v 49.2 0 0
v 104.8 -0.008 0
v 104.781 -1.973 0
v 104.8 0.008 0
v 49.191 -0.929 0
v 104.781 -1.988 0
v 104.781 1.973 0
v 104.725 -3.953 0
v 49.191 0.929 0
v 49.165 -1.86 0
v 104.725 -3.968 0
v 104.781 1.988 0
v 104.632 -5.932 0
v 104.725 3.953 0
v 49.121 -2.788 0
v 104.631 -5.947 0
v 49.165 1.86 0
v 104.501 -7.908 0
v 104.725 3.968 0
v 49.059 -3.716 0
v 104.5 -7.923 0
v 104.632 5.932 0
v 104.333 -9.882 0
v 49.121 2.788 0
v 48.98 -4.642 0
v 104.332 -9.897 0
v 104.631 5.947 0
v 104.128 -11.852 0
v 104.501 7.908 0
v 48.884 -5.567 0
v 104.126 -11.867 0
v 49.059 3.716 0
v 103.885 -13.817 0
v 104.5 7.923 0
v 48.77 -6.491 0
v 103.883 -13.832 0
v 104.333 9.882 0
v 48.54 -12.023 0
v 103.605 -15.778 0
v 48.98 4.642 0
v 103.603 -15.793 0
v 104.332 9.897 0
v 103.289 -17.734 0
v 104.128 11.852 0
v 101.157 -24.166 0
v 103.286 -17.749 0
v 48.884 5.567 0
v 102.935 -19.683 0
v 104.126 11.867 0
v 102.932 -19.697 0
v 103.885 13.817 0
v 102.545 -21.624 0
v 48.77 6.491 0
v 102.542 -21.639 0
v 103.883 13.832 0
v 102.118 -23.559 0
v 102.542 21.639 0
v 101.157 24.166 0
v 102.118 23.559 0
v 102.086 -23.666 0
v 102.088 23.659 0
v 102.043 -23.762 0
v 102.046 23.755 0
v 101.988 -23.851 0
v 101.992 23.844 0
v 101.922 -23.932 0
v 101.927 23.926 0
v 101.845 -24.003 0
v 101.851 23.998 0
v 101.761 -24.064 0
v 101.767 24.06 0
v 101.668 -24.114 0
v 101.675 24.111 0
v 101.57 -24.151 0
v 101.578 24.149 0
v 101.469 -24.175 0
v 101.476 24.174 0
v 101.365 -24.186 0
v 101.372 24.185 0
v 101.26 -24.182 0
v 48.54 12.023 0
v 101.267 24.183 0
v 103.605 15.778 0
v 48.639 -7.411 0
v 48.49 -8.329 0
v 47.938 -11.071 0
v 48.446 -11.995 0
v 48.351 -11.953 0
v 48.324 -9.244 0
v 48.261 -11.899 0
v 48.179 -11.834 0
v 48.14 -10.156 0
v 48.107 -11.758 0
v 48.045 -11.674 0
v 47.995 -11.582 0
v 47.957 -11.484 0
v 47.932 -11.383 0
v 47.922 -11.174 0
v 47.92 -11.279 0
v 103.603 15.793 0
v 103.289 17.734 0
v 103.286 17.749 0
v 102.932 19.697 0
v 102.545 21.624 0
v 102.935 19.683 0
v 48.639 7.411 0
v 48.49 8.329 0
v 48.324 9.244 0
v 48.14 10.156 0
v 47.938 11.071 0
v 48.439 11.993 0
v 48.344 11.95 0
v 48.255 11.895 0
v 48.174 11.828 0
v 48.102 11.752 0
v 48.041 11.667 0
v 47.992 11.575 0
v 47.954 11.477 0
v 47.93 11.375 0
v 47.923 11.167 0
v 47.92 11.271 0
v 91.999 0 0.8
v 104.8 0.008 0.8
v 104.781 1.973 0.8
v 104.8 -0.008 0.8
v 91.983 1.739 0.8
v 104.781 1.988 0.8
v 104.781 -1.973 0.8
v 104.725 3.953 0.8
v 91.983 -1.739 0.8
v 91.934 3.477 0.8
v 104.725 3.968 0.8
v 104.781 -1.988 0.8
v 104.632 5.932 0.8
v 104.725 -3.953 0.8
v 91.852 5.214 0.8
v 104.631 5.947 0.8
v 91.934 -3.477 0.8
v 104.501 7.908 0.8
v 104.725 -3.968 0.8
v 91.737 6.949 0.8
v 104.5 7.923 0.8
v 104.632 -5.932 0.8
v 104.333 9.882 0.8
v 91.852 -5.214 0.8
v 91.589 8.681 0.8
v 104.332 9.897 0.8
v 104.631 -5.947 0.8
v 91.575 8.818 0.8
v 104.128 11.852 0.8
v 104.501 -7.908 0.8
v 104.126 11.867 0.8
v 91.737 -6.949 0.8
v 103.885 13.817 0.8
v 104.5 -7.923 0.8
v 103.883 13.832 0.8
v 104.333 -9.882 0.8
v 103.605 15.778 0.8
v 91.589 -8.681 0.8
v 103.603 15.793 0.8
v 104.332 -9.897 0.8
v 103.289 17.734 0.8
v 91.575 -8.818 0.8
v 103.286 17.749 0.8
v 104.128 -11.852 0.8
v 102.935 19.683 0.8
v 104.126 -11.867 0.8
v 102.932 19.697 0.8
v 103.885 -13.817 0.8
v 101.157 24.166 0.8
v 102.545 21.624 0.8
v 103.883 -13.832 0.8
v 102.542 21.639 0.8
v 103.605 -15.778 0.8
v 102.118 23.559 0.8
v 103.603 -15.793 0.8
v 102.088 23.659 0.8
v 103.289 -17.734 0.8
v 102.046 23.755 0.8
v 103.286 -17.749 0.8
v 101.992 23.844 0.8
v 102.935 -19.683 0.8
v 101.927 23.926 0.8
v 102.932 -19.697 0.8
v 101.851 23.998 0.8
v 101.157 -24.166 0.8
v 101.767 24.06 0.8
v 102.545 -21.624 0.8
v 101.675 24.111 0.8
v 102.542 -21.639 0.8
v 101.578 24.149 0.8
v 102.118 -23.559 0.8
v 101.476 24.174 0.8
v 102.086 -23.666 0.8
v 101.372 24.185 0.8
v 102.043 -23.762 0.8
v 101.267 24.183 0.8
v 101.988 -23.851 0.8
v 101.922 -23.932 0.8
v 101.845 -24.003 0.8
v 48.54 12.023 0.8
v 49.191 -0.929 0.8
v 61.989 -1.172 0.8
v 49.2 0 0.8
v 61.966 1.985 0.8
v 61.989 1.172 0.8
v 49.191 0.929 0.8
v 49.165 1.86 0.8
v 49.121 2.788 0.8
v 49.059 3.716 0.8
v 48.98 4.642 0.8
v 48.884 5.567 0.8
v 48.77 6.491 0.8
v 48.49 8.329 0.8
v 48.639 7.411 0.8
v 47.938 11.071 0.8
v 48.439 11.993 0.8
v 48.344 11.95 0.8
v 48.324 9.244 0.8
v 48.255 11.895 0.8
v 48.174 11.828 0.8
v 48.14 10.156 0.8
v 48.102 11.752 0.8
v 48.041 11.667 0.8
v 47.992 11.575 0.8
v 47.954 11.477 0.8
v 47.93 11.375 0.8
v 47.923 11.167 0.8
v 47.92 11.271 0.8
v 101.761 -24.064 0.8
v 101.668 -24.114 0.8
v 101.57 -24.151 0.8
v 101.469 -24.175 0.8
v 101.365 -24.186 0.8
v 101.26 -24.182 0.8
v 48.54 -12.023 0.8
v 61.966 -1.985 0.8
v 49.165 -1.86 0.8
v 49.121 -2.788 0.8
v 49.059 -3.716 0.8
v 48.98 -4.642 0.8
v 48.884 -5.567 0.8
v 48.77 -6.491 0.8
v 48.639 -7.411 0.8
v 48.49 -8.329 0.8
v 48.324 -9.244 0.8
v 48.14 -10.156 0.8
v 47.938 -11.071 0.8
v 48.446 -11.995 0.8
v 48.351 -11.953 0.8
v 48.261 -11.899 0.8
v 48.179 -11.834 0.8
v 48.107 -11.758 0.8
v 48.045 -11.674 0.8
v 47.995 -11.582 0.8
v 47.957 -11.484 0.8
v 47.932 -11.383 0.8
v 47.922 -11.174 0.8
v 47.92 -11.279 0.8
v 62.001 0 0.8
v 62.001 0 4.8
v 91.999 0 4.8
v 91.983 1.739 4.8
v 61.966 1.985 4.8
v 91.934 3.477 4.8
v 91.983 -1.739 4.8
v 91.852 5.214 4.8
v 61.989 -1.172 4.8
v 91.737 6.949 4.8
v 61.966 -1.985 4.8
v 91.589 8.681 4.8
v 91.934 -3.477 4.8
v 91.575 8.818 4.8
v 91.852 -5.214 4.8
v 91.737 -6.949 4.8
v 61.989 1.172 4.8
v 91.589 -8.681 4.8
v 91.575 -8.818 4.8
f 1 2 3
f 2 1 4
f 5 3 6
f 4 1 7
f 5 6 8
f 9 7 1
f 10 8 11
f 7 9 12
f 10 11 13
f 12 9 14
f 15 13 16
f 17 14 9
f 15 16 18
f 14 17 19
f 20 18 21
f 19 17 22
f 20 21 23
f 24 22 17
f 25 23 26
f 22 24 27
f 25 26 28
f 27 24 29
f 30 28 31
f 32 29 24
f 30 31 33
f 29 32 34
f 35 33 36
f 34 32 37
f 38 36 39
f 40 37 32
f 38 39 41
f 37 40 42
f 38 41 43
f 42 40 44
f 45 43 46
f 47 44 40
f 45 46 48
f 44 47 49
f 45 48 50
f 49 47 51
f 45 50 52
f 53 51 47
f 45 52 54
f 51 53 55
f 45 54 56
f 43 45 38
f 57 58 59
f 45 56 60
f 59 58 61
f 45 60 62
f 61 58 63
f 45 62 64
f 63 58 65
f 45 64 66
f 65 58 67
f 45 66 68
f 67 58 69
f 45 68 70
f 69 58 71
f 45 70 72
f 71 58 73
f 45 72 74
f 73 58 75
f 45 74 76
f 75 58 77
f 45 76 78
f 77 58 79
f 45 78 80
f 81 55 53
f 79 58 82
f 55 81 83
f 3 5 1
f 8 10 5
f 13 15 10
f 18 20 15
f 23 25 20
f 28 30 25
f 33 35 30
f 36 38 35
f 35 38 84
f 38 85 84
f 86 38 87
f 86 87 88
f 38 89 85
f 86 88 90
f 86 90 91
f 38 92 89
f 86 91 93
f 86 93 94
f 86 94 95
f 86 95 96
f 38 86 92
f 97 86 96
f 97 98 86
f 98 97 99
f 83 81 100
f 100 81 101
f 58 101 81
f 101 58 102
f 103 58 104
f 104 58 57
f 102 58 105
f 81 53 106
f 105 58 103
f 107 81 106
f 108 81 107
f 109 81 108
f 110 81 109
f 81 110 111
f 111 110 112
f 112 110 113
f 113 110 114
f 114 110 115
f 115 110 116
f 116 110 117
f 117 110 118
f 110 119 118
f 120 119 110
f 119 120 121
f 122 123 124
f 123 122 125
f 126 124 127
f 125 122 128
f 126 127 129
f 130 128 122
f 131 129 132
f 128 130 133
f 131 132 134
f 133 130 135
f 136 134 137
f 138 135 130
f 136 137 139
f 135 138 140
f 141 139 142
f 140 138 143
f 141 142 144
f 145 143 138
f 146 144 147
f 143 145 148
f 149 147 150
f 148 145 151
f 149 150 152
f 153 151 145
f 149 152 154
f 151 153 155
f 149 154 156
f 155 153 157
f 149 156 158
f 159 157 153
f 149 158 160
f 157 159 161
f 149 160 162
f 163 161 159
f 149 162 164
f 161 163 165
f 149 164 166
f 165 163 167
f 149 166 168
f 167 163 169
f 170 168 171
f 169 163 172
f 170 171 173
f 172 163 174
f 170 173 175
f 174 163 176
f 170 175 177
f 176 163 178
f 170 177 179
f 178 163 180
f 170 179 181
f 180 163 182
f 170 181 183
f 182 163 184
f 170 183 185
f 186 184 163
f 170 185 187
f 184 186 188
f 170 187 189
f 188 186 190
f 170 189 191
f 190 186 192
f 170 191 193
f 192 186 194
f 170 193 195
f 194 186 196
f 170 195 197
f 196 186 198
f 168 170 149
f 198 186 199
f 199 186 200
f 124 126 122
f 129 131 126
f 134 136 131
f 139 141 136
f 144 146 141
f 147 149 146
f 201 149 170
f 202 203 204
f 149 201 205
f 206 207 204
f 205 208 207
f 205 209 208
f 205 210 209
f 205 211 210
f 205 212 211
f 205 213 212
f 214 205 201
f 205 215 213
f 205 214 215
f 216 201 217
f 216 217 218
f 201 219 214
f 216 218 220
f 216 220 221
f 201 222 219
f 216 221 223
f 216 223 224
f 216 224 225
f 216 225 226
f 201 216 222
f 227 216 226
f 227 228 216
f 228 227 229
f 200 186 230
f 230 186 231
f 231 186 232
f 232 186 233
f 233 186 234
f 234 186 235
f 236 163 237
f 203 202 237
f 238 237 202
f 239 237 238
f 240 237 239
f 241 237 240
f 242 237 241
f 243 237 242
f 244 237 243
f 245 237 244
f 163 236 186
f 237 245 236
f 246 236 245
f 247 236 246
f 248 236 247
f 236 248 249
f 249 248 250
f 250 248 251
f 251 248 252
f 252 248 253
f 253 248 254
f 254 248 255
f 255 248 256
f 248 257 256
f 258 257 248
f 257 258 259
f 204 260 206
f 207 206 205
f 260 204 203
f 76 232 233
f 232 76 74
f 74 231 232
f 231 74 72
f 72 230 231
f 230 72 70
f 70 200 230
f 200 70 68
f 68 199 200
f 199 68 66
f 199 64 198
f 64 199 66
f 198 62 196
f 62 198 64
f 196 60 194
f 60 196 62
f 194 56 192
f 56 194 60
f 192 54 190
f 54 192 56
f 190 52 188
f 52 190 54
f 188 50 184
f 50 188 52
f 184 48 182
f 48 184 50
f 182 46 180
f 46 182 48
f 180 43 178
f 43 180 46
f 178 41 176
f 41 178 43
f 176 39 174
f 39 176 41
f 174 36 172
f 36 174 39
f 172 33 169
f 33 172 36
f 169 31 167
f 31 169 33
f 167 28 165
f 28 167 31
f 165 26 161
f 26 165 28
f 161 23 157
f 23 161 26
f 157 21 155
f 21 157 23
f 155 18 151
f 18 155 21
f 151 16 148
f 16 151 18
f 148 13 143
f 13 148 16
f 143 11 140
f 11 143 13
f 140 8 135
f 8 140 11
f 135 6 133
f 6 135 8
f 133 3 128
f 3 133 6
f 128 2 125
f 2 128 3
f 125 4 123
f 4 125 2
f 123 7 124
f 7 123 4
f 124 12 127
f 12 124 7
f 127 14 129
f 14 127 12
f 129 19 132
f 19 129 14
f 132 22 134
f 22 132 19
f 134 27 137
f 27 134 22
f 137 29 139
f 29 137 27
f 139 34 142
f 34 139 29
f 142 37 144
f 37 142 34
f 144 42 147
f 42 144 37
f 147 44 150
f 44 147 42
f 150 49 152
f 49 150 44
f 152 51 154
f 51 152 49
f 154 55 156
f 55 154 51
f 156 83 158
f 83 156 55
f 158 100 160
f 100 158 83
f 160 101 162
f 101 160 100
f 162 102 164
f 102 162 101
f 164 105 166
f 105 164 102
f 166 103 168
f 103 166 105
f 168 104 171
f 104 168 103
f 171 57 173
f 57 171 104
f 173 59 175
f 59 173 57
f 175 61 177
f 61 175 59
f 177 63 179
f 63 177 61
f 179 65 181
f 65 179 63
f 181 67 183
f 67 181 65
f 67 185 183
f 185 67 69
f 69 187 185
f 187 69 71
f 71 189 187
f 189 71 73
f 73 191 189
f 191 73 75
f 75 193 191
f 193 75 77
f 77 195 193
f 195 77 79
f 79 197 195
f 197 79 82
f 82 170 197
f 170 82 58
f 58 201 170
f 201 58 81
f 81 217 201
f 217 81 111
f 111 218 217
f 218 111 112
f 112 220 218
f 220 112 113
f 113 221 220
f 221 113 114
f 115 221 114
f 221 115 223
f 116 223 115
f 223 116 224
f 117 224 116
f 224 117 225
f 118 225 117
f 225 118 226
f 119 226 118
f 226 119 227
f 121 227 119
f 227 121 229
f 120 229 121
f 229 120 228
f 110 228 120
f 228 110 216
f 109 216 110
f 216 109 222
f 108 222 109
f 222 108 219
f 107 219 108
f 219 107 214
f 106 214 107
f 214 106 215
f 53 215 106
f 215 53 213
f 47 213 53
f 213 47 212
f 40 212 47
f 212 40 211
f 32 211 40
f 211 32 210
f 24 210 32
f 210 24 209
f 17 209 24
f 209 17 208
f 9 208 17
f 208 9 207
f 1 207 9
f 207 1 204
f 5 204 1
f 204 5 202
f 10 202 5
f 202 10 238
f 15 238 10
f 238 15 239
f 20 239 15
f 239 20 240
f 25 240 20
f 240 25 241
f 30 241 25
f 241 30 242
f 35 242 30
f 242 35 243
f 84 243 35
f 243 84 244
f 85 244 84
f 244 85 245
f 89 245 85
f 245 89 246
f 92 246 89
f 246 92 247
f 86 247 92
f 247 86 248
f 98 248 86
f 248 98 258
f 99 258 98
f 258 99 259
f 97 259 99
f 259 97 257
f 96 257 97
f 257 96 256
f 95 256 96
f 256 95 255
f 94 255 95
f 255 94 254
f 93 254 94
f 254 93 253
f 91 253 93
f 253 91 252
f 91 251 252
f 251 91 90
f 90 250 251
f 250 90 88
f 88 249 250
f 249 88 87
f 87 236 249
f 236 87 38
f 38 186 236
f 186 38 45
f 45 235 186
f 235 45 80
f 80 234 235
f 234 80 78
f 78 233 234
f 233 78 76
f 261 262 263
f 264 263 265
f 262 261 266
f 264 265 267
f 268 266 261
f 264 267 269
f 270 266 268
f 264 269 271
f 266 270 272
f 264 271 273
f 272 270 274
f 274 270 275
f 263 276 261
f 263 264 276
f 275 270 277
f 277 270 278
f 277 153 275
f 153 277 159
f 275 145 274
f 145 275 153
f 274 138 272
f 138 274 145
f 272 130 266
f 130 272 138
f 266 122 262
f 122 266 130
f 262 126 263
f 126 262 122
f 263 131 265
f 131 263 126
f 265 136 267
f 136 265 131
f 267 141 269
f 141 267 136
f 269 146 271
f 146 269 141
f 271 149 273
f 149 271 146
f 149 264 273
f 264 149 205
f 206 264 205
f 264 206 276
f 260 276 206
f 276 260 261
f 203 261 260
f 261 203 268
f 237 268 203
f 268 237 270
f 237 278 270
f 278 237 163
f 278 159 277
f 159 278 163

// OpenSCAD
// file: parameters.scad
// =============================================================================
// Gen-CL — nightly 2026-10-16 (physics_scorer, honest magpylib watts)
// Modular swap: exactly the Gen-CJ rotors, arcs and steel, on a thinner-copper stator (4.0 mm copper, so the magnet faces close in by 0.5 mm) that needs only ≈300 m of 26 AWG — the rest of the spool stays free. Swap stators by changing the gap sleeve only.
// Clocking 0 deg (magnets N facing S) + D-flat keyed bore + index notch + flip-symmetric hole map.
// Windable 2-piece bobbin; turns = physics_scorer turns_fit; copper only between flanges.
// Steel back-iron: 2× Ø198 × 4.76 mm (3/16") mild-steel discs (steel_backiron_disc.dxf); magnets sit ON the steel
// (through-pockets) -> score with --back-iron. Night 2026-10-16.
// =============================================================================
topology            = "dual_rotor";

// --- Wire / winding (physics_scorer winding-fit) -------------------------------
wire_awg            = 26;
wire_od             = 0.45;     // insulated OD mm (bare 0.405)
fill_realistic      = 0.65;     // insulated-wire area / window (DENSE layered wind with a jig; scorer cap 0.65)
turns               = 196;       // = physics_scorer turns_fit (do NOT raise)
coil_former_type    = "bobbin";
coil_core_inset     = 12.00;     // radial copper build: hub = copper boundary inset by this
wind_build_axial    = 0.0;      // nothing proud of the flanges
wind_build_radial   = 0.0;

// --- Bobbin (base + lid) ---------------------------------------------------------
coil_id_r           = 50.00;    // copper boundary sector
coil_od_r           = 104.00;
span_deg            = 25.99;    // = pitch - 2*asin((wall+0.85)/coil_id_r) -> >=1.2 mm stator web
former_web          = 4.00;     // copper height between flanges (TALL copper: steel keeps Bz up)
flange_t            = 0.80;     // >= 0.8 mm FDM wall rule (tall winds push on the flanges)
wall                = 0.80;     // flange lip beyond copper
former_bare_h       = former_web + 2 * flange_t;
coil_envelope_h     = former_bare_h + 2 * wind_build_axial;
tab_w               = 7.0;
tab_len             = 7.0;
tab_h               = former_bare_h / 2;
pin_d               = 1.9;      // 1.75 mm filament locating pin
coil_mount_r        = coil_od_r + 0.2 + 4.0;
lead_y              = 1.6;
lead_slot_w         = 0.9;
lead_groove_d       = 0.6;

// --- Gap -------------------------------------------------------------------------
run_clear           = 0.50;     // rotor face -> flange
gap_spacer_h        = run_clear + wind_build_axial;
m2m                 = coil_envelope_h + 2 * run_clear;   // rotor face to rotor face (= gap_sleeve length)

// --- Stator ----------------------------------------------------------------------
coil_stations       = 12;
bay_clear           = 0.35;     // 0.35 mm: bobbin BASES print IN PLACE inside the stator bays (print-in-place gap), then pop out
stator_thick        = former_bare_h;                        // bobbins flush both faces
stator_od           = 229.0;
shaft_clear_stator  = 14.0;     // stator is static; gap sleeve OD 12 spins inside
stator_ir           = 44.85;    // ANNULAR stator: open centre (nested one-plate pack); inner rim 4.0 mm

// --- Rotor(s) --------------------------------------------------------------------
magnet_Br           = 1.43;     // N52
magnet_d_large      = 20.0;
magnet_h_large      = 5.0;      // one O20x5 per pocket
magnet_h_small      = 5.0;      // one O5x5 per pocket
halbach_magnetisation = "diametric"; // O5x5 assist magnets MUST be DIAMETRICALLY magnetised (tangential)
rotor_b_same_axis   = true;     // same-index magnets share one axis: N faces S across the gap
large_pocket_d      = 20.3;
small_pocket_d      = 5.3;
pocket_h            = 5.00;     // THROUGH the carrier: magnet back face sits on the steel disc (FLUSH seat: carrier = magnet height, magnet face level with the rotor face)
large_n             = 8;
R_large             = 86.0;
R_small_inner       = 79.8;
R_small_mid         = 86.0;
R_small_outer       = 92.2;
small_r_list        = [R_small_inner, R_small_mid, R_small_outer];   // O5 pockets between poles
// --- N42 rectangular BLOCK magnets (2026-10-16/17): one 20x10x5 block per pole, radially INSIDE the O20 disc ---
block_R_list        = [64.5];   // block centre radius (pole angle); same polarity as its O20 -> radially extended pole
block_angle_list    = [0];
block_radial        = 20.0;    // block side that runs RADIALLY (mm)
block_tangential    = 10.0;    // block side that runs TANGENTIALLY (mm)
block_h             = 5.0;     // magnetised through the 5 mm thickness (axial), = magnet_h_large so it sits on the steel
block_Br            = 1.29;    // N42 remanence (1.28-1.32 T); scorer models it as a magpylib Cuboid
block_pocket_clear  = 0.3;    // pocket = block + 0.3 mm each way (+ 1.2 mm corner reliefs)
carrier_od          = 198.0;
ring_ir             = 51.35;    // RING rotor: PLA magnet ring r ring_ir..carrier_od/2 (steel disc = structural rotor)
hub_flange_od       = 58.0;     // separate rotor_hub flange (inside the ring, flush with the ring face)
csk_d               = 6.6;      // M3 countersunk head pocket (ISO 10642 head 6.0 nominal) on the stator face
csk_depth           = 1.55;     // = (csk_d - m3_clear) / 2: 90 deg cone; head sits 0.3 mm below the face
n_seg               = 8;        // magnet-carrier ARCS per rotor (segmented carrier)
seg_deg             = 360 / n_seg;
seg_start           = -32;   // arc edge angle (between pocket 0 and its clamp bolt)
seg_kerf_deg        = 0.4;      // gap between neighbouring arcs on the steel
carrier_thick       = pocket_h;
hub_h               = 12.0;     // > steel_t + insert: radial set-screw clears the steel
hub_od              = 24.0;     // slim hub so the M4 brace rods fit at R~18 inside the coil ring
hub_insert_d        = 4.0;      // M3 heat-set insert, radial, bears on the D-flat
rotor_b_offset_deg  = 0.0;      // CLOCKING: magnets directly opposite
shaft_key           = "dflat";
dflat_depth         = 0.5;      // 8 mm shaft with 0.5 mm flat (7.5 across flat)
index_notch_d       = 3.0;

// --- Steel back-iron (buyable laser-cut) -------------------------------------------
steel_t             = 4.76;      // mild steel thickness (image method ignores it; sized from steel_flux.py so the return path stays well below saturation)
steel_center_hole   = 26.0;     // slips over the rotor hub (OD 24)
steel_od            = carrier_od;   // steel disc OD = rotor carrier OD

// --- Modular MAX interface ----------------------------------------------------------
shaft_bore          = 8.35;
dflat_x             = 4.0 - dflat_depth + (shaft_bore - 8.0) / 2;
bearing_d           = 21.85;
bearing_h           = 7.2;
m3_clear            = 3.5;
bolt_r_inner        = 22.0;     // M3 steel-disc clamp bolts (inside the magnet ring)
bolt_n_inner        = 4;
bolt_inner_angles   = [0, 90, 180, 270];
bolt_r_outer        = 86.0;     // second M3 steel-disc clamp ring
bolt_outer_angles   = [13.0, 32.0, 58.0, 77.0, 103.0, 122.0, 148.0, 167.0, 193.0, 212.0, 238.0, 257.0, 283.0, 302.0, 328.0, 347.0];
flange_bolt_r       = 109.5;     // frame rods: OUTSIDE the rotor OD (rotors spin inside them)
flange_bolt_n       = 4;
flange_bolt_offset  = 45.00;    // between coil stations -> never cuts a lead groove/tab
brace_r             = 18.0;
brace_d             = 4.3;      // temporary M4 jack rods (assembly only)
brace_n             = 4;
brace_angles        = [45, 135, 225, 315];          // flip-symmetric

spacer_pad_od       = 14.0;
spacer_pad_id       = m3_clear;
endbell_od          = 229.0;
endbell_thick       = 8.0;
endbell_shaft_clear = 10.0;
collar_h            = 10.0;
standoff_od         = 9.0;
frame_standoff_h    = run_clear + carrier_thick + hub_h + collar_h + 2.0;
sleeve_od           = 12.0;
plate_max_mm        = 410;

$fn = 64;
// main file
// Gen-CL — bobbin BASE (bottom flange + hub). Print x12, flange down. Wind 26 AWG x 196 t around
// the hub with the LID glued on (coil_lid.stl). Copper lives ONLY between the flanges (no proud winds).
include <parameters.scad>;
$fn = 48;
module sector_2d(r_in, r_out, ang) {
    polygon([
        for (a = [-ang/2 : ang/24 : ang/2]) [r_in*cos(a), r_in*sin(a)],
        for (a = [ang/2 : -ang/24 : -ang/2]) [r_out*cos(a), r_out*sin(a)]
    ]);
}
module footprint_2d() { offset(r=wall) sector_2d(coil_id_r, coil_od_r, span_deg); }
module hub_2d()       { offset(delta=-coil_core_inset) sector_2d(coil_id_r, coil_od_r, span_deg); }

union() {
    linear_extrude(flange_t) footprint_2d();
    translate([0, 0, flange_t - 0.01]) linear_extrude(former_web + 0.01) hub_2d();
}
